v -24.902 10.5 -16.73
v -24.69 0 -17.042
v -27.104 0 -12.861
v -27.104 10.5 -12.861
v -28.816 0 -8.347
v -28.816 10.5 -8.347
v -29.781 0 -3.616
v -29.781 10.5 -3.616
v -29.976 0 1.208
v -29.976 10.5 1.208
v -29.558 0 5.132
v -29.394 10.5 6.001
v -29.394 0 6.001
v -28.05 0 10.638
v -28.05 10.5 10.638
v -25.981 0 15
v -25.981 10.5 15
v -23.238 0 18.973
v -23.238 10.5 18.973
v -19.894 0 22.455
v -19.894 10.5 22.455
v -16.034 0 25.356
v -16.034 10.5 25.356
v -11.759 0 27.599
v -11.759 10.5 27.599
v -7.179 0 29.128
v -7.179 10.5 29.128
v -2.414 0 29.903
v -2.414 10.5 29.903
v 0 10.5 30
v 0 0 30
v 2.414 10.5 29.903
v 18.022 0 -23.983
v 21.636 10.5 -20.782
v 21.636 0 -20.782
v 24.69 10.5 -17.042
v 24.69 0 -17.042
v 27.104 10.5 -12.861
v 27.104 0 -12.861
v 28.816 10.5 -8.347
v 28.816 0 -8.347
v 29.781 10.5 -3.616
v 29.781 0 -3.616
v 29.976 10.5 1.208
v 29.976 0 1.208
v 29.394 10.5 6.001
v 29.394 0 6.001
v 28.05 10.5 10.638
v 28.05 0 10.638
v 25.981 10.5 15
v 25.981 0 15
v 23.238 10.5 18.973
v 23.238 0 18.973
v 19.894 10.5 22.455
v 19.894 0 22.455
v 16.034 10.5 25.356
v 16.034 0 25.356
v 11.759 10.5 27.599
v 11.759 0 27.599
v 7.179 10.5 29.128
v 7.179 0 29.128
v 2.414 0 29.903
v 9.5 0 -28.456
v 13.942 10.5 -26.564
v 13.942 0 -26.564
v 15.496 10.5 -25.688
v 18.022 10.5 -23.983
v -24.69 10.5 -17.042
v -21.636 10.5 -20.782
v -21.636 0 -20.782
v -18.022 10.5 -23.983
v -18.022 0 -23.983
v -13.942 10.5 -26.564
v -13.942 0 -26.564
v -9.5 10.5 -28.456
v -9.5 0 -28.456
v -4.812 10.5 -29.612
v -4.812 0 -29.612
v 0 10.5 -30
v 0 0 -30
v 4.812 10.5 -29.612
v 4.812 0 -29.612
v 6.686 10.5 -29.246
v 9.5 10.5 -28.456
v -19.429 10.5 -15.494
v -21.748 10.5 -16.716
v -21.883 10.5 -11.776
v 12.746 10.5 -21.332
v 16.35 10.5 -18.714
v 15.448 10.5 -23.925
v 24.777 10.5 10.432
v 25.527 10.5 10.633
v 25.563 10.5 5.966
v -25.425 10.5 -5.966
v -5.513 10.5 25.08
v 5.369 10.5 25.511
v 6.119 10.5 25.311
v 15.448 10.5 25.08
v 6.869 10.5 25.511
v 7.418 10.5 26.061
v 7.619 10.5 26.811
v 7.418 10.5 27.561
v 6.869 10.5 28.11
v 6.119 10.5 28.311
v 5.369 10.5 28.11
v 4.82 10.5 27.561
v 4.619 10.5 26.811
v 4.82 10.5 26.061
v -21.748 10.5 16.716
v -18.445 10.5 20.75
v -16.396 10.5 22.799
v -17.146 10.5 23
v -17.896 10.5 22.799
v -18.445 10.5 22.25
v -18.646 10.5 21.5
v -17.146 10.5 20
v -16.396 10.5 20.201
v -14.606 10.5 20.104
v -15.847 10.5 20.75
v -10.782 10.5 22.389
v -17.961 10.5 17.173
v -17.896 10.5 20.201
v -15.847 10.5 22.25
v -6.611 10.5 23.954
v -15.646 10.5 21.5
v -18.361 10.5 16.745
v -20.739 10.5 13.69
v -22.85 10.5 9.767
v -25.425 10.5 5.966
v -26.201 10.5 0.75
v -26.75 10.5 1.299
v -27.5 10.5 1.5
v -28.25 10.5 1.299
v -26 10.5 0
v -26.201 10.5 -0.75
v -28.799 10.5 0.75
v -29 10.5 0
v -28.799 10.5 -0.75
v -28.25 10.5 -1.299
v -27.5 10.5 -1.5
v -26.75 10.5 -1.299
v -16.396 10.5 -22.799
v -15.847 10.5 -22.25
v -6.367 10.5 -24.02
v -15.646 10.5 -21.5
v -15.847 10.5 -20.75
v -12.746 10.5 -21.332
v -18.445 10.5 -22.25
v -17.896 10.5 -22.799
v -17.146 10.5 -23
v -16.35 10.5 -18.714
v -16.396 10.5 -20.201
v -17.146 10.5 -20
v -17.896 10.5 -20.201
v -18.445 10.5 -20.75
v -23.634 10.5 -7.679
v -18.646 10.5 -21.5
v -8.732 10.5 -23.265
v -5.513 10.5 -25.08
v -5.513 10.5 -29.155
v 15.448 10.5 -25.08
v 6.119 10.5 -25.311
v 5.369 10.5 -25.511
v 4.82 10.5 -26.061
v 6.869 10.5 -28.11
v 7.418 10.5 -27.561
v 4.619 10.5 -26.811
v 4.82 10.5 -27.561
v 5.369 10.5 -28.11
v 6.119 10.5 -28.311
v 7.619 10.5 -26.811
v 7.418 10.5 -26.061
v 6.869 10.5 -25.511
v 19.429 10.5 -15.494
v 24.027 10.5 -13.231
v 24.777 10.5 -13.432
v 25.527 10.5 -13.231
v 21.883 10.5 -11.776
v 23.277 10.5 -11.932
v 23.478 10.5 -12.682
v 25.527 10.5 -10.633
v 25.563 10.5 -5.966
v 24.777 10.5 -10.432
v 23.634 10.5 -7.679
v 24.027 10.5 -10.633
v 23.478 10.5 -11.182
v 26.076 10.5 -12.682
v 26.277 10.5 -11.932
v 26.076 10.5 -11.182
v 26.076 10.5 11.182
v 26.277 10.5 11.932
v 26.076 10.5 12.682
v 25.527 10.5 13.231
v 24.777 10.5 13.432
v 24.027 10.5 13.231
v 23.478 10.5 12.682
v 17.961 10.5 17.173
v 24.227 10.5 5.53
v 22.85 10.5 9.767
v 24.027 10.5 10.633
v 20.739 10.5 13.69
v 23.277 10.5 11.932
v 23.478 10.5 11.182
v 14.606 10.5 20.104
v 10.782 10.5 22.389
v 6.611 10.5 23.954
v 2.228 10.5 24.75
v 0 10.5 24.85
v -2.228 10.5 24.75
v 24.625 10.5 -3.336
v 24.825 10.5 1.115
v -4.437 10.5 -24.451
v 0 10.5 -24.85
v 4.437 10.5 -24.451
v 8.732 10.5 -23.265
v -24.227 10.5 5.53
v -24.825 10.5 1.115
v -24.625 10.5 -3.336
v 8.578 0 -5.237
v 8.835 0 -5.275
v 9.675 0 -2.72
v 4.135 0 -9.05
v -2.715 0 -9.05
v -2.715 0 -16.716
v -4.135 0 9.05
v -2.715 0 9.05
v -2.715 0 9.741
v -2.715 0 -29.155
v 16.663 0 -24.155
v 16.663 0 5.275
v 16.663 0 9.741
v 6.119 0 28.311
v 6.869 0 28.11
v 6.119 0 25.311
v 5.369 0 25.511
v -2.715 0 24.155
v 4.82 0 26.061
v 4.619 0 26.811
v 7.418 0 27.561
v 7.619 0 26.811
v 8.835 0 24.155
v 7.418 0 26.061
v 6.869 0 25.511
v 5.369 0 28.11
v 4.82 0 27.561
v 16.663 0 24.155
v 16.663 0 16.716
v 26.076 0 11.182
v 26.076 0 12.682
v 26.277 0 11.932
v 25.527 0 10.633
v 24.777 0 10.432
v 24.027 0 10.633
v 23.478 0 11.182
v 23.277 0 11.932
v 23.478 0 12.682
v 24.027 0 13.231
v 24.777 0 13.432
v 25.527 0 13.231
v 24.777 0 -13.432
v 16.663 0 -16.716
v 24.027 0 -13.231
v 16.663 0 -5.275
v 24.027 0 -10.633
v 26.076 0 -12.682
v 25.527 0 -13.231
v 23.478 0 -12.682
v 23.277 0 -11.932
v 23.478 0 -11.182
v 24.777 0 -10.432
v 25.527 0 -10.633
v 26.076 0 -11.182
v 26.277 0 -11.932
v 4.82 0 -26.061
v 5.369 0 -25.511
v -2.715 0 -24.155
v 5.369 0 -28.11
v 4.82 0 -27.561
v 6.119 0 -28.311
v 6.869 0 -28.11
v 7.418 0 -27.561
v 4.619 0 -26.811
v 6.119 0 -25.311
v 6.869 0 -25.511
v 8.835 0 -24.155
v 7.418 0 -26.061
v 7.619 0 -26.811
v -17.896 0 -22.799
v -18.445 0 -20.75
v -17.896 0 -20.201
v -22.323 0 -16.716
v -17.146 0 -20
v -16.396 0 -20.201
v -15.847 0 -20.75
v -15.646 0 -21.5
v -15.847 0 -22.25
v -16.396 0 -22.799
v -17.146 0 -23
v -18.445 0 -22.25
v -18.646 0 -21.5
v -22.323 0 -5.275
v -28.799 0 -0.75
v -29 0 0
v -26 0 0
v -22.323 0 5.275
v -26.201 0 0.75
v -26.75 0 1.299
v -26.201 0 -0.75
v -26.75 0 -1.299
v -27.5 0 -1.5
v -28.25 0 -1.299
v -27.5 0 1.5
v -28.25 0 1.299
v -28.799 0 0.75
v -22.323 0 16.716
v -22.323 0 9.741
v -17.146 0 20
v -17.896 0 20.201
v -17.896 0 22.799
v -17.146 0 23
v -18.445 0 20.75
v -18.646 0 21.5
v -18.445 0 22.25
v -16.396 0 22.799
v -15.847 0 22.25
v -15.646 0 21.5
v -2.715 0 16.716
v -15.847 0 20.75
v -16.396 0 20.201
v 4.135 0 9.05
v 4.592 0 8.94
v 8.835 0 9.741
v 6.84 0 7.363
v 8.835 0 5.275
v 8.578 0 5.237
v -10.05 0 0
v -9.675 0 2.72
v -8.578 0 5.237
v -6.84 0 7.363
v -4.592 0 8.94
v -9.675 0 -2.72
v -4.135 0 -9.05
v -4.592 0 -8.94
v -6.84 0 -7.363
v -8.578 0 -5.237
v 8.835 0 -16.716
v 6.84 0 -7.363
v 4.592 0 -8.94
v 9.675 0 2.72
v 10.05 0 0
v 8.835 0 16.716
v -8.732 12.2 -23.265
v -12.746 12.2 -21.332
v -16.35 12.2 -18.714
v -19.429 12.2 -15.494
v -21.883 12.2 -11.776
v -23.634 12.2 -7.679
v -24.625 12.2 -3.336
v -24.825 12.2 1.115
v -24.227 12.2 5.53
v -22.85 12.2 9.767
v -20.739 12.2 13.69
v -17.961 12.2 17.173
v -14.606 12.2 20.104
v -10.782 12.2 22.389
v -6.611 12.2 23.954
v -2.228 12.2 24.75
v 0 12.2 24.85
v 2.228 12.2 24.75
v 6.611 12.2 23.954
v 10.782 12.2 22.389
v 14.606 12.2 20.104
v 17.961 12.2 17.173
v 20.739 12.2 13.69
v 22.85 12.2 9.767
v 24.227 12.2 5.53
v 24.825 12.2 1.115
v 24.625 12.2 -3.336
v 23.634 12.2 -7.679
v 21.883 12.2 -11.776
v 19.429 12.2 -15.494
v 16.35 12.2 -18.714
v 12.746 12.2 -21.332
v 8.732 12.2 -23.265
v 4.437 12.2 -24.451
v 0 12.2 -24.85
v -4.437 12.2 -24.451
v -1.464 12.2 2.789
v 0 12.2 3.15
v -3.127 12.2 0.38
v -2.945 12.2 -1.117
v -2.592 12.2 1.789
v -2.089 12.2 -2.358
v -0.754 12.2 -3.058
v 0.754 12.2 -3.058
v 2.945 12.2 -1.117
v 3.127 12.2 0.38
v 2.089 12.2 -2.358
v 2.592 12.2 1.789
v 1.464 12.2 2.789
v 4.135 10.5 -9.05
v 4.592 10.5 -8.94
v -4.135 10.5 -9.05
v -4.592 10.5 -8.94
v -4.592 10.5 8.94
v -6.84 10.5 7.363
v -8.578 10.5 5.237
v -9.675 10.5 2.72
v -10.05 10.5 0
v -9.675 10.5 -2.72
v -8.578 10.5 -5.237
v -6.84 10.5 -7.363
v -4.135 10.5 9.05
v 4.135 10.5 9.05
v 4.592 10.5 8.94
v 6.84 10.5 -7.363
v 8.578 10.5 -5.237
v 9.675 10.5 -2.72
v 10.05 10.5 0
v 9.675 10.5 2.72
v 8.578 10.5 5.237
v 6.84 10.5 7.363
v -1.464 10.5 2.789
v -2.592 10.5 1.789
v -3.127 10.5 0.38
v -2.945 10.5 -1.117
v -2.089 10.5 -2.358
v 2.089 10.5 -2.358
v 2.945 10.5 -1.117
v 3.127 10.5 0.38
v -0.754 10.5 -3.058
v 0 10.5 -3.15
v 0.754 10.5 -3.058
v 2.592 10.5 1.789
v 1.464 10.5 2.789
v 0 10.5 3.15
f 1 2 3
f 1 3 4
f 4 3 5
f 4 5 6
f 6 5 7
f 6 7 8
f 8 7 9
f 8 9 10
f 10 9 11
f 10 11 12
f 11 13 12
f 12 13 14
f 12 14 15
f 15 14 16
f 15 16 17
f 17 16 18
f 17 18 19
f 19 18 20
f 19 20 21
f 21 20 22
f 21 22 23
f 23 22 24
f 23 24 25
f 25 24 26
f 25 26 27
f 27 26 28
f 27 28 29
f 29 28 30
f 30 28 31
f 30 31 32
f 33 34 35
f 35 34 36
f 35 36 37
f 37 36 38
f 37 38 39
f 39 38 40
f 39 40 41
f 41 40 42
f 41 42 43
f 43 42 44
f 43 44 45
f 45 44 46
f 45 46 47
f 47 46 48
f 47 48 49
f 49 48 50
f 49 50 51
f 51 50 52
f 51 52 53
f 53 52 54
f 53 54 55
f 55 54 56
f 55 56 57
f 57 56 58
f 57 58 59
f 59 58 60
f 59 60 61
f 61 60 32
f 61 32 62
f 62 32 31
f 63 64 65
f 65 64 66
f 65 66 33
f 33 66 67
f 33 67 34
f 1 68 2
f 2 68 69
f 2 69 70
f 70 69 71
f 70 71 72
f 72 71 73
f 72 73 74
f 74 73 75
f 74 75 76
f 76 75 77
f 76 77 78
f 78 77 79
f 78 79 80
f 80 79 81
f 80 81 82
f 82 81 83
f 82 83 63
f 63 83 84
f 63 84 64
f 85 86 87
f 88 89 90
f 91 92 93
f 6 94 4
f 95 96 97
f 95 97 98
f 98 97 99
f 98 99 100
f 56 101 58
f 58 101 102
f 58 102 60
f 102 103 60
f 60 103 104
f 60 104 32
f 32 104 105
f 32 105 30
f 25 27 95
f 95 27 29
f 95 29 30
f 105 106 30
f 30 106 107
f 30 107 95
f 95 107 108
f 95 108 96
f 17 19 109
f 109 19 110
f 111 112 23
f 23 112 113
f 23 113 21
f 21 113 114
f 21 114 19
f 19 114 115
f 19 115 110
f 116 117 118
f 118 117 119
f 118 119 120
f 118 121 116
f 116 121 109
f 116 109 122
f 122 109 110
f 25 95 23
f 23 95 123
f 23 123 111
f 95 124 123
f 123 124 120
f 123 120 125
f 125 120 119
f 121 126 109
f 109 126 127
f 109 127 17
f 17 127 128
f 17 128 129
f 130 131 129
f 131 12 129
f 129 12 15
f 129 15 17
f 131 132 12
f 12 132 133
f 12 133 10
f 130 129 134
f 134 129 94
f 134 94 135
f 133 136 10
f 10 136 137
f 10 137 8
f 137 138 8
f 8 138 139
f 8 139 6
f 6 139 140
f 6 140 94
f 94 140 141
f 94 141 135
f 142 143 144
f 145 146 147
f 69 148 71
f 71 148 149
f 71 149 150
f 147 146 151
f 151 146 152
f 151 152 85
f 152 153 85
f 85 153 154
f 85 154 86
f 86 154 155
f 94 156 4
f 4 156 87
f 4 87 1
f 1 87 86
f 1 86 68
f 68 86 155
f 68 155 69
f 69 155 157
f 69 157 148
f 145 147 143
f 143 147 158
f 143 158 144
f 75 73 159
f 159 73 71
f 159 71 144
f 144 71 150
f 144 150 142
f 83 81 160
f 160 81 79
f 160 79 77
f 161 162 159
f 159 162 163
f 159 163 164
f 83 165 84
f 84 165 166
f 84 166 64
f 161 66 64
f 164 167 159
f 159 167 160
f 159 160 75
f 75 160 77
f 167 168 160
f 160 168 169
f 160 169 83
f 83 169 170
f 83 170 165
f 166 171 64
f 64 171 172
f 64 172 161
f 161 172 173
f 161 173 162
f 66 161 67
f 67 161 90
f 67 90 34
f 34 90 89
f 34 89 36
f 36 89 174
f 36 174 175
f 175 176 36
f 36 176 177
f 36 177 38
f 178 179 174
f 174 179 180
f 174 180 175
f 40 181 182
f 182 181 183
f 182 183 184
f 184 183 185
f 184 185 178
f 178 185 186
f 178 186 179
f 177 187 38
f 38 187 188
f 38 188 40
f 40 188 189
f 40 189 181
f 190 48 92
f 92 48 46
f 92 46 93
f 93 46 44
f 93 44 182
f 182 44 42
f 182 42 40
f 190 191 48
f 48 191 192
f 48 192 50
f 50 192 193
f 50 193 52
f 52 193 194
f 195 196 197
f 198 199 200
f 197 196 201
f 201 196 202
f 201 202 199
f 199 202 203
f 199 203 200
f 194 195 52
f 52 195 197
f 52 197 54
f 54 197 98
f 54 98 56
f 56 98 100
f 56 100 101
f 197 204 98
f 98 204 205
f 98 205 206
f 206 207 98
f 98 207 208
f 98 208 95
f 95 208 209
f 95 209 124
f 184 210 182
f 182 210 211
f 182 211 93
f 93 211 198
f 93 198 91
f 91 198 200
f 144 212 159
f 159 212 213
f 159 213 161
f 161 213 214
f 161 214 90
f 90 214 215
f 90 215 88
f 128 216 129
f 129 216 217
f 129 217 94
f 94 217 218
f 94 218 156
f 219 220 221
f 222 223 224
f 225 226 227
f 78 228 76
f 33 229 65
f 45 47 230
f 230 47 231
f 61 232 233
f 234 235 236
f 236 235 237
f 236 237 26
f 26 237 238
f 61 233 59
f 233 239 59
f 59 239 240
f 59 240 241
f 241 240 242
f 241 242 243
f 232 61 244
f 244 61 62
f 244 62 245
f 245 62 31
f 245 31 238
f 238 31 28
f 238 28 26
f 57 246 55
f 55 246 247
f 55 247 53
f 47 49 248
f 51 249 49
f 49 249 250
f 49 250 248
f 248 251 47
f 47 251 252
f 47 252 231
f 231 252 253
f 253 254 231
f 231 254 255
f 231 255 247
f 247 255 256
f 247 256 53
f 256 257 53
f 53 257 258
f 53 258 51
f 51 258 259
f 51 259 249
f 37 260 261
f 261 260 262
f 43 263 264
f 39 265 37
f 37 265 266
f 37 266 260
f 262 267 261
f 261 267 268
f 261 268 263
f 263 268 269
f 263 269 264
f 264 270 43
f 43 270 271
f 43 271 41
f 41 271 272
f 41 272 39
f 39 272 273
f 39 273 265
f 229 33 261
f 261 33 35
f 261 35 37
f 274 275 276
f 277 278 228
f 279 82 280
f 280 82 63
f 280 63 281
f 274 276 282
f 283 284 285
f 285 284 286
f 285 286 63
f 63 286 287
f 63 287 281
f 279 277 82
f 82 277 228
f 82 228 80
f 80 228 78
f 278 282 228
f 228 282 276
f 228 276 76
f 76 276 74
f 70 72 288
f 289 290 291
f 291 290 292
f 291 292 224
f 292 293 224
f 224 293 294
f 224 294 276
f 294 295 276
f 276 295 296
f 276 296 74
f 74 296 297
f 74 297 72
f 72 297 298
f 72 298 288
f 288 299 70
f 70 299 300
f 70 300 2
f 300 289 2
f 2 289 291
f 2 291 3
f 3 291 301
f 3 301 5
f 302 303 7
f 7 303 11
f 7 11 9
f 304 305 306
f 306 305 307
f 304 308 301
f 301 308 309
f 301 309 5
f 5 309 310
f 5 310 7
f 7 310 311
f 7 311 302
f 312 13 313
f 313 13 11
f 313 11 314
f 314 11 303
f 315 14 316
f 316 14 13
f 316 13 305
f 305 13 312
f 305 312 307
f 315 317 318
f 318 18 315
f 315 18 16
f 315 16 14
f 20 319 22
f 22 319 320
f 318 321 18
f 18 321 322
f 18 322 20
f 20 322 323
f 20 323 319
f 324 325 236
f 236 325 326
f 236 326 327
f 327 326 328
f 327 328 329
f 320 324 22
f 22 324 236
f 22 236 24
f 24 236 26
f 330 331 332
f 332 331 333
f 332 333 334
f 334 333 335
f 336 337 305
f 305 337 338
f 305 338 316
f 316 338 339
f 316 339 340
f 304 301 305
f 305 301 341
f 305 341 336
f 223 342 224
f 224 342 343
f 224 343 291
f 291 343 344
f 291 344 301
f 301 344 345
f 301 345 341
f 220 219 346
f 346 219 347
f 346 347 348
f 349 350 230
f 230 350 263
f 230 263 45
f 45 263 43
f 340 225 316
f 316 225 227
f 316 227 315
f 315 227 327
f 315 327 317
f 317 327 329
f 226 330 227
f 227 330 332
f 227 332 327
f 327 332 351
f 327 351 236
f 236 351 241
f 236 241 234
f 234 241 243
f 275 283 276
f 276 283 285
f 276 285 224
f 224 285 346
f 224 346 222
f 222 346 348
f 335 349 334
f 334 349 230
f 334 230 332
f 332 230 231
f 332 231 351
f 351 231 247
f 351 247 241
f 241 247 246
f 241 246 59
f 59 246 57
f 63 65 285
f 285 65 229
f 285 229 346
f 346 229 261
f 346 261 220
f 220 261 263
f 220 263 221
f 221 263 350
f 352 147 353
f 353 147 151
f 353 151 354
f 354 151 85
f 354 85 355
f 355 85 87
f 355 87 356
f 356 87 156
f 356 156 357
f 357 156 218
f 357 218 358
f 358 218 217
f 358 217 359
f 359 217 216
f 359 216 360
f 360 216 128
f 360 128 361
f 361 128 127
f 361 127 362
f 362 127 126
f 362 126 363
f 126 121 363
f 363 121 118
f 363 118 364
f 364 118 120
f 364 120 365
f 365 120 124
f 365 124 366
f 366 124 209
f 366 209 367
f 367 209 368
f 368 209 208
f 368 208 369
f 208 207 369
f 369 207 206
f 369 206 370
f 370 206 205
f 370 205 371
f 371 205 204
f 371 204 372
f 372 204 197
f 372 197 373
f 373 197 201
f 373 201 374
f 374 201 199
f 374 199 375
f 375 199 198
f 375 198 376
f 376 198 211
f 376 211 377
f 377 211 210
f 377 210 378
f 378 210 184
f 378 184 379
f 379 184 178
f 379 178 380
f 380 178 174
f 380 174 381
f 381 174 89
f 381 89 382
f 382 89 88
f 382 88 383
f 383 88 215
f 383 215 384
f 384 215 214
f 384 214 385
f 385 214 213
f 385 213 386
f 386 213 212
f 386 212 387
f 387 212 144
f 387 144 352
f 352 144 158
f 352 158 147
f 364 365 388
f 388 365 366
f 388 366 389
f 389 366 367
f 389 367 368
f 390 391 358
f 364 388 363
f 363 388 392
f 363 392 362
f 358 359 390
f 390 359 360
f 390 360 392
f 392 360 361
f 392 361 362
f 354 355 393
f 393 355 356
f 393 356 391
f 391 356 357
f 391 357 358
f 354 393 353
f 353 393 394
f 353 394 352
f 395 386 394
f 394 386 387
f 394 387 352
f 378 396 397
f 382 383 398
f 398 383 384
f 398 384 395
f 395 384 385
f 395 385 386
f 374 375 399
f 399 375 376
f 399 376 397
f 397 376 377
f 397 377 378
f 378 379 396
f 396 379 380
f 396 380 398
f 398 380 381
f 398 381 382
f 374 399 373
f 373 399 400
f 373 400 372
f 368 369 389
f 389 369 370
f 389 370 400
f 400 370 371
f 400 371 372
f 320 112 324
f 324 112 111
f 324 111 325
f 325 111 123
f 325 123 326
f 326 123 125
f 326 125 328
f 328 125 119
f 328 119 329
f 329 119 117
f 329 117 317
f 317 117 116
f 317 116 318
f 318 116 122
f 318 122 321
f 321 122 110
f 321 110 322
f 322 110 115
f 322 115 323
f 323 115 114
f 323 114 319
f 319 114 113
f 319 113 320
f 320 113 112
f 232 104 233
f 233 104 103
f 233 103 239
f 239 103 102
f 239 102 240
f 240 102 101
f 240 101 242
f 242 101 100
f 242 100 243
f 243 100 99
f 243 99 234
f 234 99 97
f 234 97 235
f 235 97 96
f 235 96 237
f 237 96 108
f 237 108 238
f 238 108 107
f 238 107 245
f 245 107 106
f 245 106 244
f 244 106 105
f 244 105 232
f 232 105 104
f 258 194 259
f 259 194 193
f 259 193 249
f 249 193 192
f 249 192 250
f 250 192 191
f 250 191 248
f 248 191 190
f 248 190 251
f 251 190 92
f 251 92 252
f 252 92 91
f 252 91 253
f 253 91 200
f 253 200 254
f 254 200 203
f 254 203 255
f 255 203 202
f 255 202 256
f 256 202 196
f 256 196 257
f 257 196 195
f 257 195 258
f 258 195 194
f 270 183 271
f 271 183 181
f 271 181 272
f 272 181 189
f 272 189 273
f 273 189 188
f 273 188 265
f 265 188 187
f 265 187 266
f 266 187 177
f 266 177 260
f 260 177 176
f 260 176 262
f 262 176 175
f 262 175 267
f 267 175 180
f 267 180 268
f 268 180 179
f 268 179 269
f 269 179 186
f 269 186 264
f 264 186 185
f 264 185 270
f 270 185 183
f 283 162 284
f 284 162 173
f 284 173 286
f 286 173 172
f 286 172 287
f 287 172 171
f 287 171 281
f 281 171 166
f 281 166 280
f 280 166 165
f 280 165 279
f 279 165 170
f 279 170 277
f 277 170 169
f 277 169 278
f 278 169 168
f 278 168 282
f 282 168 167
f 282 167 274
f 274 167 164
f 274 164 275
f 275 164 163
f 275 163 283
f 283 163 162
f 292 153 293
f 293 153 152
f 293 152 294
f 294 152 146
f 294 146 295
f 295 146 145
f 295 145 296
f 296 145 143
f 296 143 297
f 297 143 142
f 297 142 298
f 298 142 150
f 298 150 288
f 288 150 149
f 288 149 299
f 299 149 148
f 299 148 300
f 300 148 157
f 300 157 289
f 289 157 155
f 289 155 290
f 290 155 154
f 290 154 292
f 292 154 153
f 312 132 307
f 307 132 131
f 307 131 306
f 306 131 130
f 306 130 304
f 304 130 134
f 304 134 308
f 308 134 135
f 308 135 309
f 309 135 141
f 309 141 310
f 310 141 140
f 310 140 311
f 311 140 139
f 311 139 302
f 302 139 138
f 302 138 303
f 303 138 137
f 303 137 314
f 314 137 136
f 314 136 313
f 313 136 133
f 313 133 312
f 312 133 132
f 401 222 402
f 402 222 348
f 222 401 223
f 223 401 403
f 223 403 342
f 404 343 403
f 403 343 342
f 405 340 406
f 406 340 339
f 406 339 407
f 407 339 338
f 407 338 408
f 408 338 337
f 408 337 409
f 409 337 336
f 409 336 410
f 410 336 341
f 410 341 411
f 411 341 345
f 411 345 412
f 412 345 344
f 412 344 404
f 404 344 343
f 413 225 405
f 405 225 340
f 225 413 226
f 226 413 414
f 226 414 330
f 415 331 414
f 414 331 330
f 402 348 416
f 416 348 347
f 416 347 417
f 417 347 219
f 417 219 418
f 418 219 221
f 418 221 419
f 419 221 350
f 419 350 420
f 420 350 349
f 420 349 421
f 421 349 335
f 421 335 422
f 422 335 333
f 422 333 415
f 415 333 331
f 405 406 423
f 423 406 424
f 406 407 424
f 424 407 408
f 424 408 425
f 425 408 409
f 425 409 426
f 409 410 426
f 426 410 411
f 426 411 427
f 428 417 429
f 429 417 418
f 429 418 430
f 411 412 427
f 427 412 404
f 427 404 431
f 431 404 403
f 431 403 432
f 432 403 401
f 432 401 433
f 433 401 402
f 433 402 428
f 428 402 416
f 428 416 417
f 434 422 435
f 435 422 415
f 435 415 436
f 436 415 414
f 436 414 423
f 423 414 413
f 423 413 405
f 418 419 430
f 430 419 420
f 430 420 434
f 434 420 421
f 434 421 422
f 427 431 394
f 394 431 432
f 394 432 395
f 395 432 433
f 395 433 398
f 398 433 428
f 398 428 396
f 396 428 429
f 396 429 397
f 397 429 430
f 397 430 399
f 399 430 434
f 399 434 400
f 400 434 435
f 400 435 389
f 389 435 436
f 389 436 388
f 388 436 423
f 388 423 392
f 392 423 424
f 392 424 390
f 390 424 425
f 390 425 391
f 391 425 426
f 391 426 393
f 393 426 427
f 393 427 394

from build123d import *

# Parameters (mm, degrees)
CROQUIS1_R              = 30
SALIENTE_EXTRUIR1_DEPTH = 10.5
CROQUIS2_R              = 24.85
SALIENTE_EXTRUIR2_DEPTH = 1.7
CROQUIS4_R              = 1.5
CORTAR_EXTRUIR1_DEPTH   = 44.706406853
CORTAR_EXTRUIR2_DEPTH   = 10.5
CROQUIS6_R              = 3.15
CORTAR_EXTRUIR3_DEPTH   = 45.145667964


with BuildPart() as part:
    # Croquis1 → Saliente-Extruir1 (new body)
    with BuildSketch(Plane(origin=(0, 0, 0), x_dir=(1, 0, 0), z_dir=(0, 1, 0))):
        with Locations(Location((0, 0, 0), (0, 0, 90))):
            Circle(CROQUIS1_R)
    extrude(amount=SALIENTE_EXTRUIR1_DEPTH)

    # Croquis2 → Saliente-Extruir2 (add)
    with BuildSketch(Plane(origin=(0, 10.5, 0), x_dir=(1, 0, 0), z_dir=(0, 1, 0))):
        with Locations(Location((0, 0, 0), (0, 0, 270))):
            Circle(CROQUIS2_R)
    extrude(amount=SALIENTE_EXTRUIR2_DEPTH)

    # Croquis4 → Cortar-Extruir1 (cut, through all)
    with BuildSketch(Plane(origin=(0, 10.5, 0), x_dir=(1, 0, 0), z_dir=(0, 1, 0))):
        with Locations(Location((-27.5, 0, 0), (0, 0, 270))):
            Circle(CROQUIS4_R)
        with Locations(Location((-17.145969551, 21.500365768, 0), (0, 0, 270))):
            Circle(CROQUIS4_R)
        with Locations(Location((6.119325684, 26.810517585, 0), (0, 0, 270))):
            Circle(CROQUIS4_R)
        with Locations(Location((24.776643867, 11.931802826, 0), (0, 0, 270))):
            Circle(CROQUIS4_R)
        with Locations(Location((24.776643867, -11.931802826, 0), (0, 0, 270))):
            Circle(CROQUIS4_R)
        with Locations(Location((6.119325684, -26.810517585, 0), (0, 0, 270))):
            Circle(CROQUIS4_R)
        with Locations(Location((-17.145969551, -21.500365768, 0), (0, 0, 270))):
            Circle(CROQUIS4_R)
    extrude(amount=-CORTAR_EXTRUIR1_DEPTH, mode=Mode.SUBTRACT)

    # Croquis5 → Cortar-Extruir2 (cut)
    with BuildSketch(Plane.XZ):
        with BuildLine():
            Line((-4.135214626, 9.05), (4.135214626, 9.05))
            ThreePointArc((4.135214626, 9.05), (4.370264873, 9.021983221), (4.592144419, 8.939502762))
            ThreePointArc((4.592144419, 8.939502762), (10.05, 0), (4.592144419, -8.939502762))
            ThreePointArc((4.592144419, -8.939502762), (4.370264873, -9.021983221), (4.135214626, -9.05))
            Line((4.135214626, -9.05), (-4.135214626, -9.05))
            ThreePointArc((-4.135214626, -9.05), (-4.370264873, -9.021983221), (-4.592144419, -8.939502762))
            ThreePointArc((-4.592144419, -8.939502762), (-10.05, 0), (-4.592144419, 8.939502762))
            ThreePointArc((-4.592144419, 8.939502762), (-4.370264873, 9.021983221), (-4.135214626, 9.05))
        make_face()
    extrude(amount=-CORTAR_EXTRUIR2_DEPTH, mode=Mode.SUBTRACT)

    # Croquis6 → Cortar-Extruir3 (cut, through all)
    with BuildSketch(Plane(origin=(0, 12.2, 0), x_dir=(1, 0, 0), z_dir=(0, 1, 0))):
        with Locations(Location((0, 0, 0), (0, 0, 270))):
            Circle(CROQUIS6_R)
    extrude(amount=-CORTAR_EXTRUIR3_DEPTH, mode=Mode.SUBTRACT)


solid = part.part
